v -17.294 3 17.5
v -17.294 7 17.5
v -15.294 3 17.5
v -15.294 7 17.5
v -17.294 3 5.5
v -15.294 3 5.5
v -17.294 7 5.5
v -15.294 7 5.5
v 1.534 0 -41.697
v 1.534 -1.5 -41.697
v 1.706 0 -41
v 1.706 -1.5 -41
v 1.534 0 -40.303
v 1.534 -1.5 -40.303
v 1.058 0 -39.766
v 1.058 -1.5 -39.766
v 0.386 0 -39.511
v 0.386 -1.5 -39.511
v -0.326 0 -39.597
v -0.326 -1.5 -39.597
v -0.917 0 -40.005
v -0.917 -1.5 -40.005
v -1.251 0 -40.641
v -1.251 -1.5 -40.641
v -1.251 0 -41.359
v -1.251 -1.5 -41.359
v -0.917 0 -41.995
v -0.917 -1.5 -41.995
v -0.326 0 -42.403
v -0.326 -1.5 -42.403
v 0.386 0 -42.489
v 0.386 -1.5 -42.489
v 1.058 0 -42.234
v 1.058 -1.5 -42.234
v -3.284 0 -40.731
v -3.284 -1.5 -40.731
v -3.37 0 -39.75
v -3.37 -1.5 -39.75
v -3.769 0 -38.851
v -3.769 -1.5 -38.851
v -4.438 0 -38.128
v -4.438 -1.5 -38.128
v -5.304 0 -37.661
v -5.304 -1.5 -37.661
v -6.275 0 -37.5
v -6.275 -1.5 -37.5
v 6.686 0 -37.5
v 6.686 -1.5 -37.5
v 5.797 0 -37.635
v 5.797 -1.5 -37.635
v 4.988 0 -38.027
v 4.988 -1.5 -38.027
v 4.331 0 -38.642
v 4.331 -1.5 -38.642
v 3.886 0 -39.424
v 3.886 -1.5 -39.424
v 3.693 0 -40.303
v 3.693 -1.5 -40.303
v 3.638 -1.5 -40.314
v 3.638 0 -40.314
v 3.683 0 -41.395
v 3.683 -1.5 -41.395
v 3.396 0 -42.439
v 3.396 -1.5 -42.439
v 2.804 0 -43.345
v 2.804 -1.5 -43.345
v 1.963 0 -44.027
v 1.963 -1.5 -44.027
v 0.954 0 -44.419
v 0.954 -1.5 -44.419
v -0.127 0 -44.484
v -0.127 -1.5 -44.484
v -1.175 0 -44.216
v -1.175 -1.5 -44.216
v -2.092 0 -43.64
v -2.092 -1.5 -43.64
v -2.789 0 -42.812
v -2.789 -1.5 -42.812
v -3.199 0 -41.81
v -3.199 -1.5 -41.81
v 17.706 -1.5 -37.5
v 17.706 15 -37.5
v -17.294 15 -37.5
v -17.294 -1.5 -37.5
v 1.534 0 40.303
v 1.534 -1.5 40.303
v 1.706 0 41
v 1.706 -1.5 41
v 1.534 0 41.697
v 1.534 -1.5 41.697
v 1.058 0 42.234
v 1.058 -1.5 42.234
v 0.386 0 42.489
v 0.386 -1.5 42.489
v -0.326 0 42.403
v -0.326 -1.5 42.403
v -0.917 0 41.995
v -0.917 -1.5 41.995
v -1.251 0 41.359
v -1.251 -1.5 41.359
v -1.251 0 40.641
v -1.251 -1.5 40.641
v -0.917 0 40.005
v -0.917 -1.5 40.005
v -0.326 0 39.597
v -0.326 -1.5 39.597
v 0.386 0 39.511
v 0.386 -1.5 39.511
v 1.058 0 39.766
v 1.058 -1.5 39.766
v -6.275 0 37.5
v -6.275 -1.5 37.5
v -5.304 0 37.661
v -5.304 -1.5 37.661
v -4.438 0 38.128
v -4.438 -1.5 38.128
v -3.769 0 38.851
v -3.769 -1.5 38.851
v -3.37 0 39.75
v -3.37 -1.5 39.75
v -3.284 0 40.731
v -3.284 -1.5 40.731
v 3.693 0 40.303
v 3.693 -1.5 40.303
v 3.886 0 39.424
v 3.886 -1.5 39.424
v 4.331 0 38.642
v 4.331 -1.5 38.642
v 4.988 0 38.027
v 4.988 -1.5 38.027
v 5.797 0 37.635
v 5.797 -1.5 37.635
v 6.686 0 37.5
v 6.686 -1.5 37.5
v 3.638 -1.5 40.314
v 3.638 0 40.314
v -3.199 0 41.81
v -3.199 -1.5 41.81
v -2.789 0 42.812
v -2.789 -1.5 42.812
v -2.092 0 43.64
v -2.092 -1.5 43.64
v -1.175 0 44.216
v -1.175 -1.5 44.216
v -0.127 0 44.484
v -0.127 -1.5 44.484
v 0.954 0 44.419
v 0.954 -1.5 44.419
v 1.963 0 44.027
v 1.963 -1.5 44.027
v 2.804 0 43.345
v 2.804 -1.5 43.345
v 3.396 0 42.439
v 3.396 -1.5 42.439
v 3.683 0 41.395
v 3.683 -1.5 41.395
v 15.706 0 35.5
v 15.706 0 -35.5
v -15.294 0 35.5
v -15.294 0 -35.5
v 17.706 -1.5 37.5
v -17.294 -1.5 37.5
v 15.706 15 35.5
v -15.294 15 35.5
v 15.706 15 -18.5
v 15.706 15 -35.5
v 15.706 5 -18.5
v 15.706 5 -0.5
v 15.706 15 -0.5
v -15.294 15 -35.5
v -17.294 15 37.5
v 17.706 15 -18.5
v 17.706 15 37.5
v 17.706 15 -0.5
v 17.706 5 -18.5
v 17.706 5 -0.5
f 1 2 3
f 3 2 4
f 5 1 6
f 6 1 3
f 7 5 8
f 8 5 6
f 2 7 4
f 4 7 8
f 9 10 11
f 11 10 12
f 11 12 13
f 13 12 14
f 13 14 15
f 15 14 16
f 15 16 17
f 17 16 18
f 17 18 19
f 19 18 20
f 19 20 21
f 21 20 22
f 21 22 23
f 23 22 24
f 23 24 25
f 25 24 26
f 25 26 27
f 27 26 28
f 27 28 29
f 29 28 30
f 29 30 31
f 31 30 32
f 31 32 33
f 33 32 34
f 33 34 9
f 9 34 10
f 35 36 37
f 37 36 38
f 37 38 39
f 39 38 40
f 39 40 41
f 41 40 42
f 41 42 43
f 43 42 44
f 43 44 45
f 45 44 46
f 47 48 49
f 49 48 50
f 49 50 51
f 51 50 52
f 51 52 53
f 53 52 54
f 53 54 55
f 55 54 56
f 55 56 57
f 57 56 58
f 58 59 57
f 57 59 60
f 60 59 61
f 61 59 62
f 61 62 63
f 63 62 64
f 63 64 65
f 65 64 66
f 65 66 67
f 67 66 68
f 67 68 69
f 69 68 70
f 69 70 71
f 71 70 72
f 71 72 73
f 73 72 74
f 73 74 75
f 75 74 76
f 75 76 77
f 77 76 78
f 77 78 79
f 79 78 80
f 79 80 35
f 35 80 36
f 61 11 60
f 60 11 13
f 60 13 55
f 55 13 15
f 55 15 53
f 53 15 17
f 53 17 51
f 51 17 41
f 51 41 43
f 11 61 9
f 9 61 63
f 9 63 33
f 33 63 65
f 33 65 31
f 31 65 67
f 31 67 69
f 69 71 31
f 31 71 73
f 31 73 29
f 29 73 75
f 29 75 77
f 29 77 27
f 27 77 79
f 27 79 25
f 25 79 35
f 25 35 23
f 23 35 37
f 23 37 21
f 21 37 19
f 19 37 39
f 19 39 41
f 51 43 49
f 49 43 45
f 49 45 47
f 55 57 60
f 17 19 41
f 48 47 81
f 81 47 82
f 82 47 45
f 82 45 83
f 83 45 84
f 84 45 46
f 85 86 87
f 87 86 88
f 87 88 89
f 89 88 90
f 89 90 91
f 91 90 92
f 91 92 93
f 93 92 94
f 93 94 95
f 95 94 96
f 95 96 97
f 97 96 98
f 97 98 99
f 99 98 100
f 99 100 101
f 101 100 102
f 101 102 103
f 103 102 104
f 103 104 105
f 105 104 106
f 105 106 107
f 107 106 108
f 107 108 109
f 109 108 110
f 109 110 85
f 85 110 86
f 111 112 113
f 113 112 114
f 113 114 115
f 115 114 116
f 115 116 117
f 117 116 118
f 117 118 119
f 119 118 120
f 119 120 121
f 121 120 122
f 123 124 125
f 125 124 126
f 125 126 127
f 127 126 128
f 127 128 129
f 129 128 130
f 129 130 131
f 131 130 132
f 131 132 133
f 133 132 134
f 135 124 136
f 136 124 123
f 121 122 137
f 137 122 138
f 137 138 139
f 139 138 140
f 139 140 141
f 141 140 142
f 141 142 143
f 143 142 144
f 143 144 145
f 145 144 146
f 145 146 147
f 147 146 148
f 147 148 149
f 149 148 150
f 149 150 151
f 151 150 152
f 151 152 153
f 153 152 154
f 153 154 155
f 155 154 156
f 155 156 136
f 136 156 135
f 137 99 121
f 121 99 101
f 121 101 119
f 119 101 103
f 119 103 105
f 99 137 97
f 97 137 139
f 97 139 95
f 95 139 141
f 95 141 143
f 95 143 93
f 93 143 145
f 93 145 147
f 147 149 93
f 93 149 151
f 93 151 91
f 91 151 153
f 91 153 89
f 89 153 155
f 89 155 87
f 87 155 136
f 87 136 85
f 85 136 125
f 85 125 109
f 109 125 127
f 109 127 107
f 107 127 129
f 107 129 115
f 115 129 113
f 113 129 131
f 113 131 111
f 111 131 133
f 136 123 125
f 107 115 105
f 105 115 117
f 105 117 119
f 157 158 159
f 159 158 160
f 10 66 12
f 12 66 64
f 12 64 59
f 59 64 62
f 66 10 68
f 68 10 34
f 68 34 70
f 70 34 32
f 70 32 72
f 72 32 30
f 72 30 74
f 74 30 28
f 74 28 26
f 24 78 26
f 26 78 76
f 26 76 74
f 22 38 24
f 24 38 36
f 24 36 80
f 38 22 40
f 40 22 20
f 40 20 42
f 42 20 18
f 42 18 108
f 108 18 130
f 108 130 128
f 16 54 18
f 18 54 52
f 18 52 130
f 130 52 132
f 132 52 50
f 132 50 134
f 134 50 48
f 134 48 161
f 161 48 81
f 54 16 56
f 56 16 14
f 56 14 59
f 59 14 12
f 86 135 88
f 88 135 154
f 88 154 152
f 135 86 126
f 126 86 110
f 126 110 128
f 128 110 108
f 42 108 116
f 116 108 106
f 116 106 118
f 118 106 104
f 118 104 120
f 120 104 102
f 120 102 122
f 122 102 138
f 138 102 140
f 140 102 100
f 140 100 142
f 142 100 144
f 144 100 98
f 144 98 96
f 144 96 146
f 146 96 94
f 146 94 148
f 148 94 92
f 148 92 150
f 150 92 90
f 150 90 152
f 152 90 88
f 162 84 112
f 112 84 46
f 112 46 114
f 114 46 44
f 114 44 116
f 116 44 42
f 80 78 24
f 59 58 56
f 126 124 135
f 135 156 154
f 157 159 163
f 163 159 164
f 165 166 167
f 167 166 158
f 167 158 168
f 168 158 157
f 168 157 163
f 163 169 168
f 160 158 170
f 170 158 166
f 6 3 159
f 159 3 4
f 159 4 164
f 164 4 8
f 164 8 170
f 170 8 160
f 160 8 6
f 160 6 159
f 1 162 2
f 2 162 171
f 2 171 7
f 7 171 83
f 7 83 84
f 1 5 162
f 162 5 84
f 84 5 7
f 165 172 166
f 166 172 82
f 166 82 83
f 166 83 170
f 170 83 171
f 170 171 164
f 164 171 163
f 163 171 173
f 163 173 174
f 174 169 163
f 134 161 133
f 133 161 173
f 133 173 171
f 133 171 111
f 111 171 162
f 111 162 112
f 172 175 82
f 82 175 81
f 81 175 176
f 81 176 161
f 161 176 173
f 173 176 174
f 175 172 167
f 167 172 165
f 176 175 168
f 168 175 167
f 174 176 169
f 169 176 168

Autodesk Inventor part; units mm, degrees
ref_plane "YZ Plane" through (0, 0, 0) normal (1, 0, 0) x (0, 1, 0)
ref_plane "XZ Plane" through (0, 0, 0) normal (0, 1, 0) x (-1, 0, 0)
ref_plane "XY Plane" through (0, 0, 0) normal (0, 0, 1) x (1, 0, 0)
sketch "Boceto1" plane through (0, 0, 0) normal (0, 1, 0) x (-1, 0, 0)
  line L0 (-15.2057, -35) -> (14.7943, -35)
  line L1 (14.7943, -35) -> (14.7943, 35)
  line L2 (14.7943, 35) -> (-15.2057, 35)
  line L3 (-15.2057, 35) -> (-15.2057, -35)
  line L4 (-15.2057, -35) -> (14.7943, 35) construction
  line L5 (14.7943, -35) -> (-15.2057, 35) construction
  line L6 (15.2943, 35.5) -> (15.2943, -35.5)
  line L7 (15.2943, -35.5) -> (-15.7057, -35.5)
  line L8 (-15.7057, -35.5) -> (-15.7057, 35.5)
  line L9 (-15.7057, 35.5) -> (15.2943, 35.5)
  line L10 (17.2943, -37.5) -> (17.2943, 37.5)
  line L11 (17.2943, 37.5) -> (-17.7057, 37.5)
  line L12 (-17.7057, 37.5) -> (-17.7057, -37.5)
  line L13 (-17.7057, -37.5) -> (17.2943, -37.5)
  point P0 (0, 0)
  point P1 (-0.2057, 0)
  dimension "d0" = 30
  dimension "d1" = 70
  dimension "d2" = 0.5
  dimension "d3" = 2
extrude "Extrusión1" add sketch "Boceto1" along normal blind 15 contours L13 L12 L11 L10
sketch "Boceto2" plane through (0, 0, 0) normal (0, -1, 0) x (1, 0, 0)
  line L0 (-17.2943, 37.5) -> (17.7057, 37.5) projected
  line L1 (-17.2943, -37.5) -> (-17.2943, 37.5) projected
  line L2 (17.7057, -37.5) -> (-17.2943, -37.5) projected
  line L3 (17.7057, 37.5) -> (17.7057, -37.5) projected
  line L4 (-15.2943, 35.5) -> (-15.2943, -35.5) projected
  line L5 (15.7057, 35.5) -> (-15.2943, 35.5) projected
  line L6 (15.7057, -35.5) -> (15.7057, 35.5) projected
  line L7 (-15.2943, -35.5) -> (15.7057, -35.5) projected
  point P0 (0, 0)
extrude "Extrusión2" add sketch "Boceto2" along normal blind 1.5 contours L0 L3 L2 L1 | L5 L6 L7 L4
sketch "Boceto3" plane through (0, -1.5, 0) normal (0, -1, 0) x (1, 0, 0)
  line L0 (-17.2943, -37.5) -> (17.7057, -37.5) projected
  line L1 (17.7057, -37.5) -> (17.7057, 37.5) projected
  line L2 (17.7057, 37.5) -> (-17.2943, 37.5) projected
  line L3 (-17.2943, 37.5) -> (-17.2943, -37.5) projected
  line L4 (-17.2943, 37.5) -> (17.7057, 37.5)
  line L5 (17.7057, 37.5) -> (17.7057, 44.5)
  line L6 (17.7057, 44.5) -> (-17.2943, 44.5)
  line L7 (-17.2943, 44.5) -> (-17.2943, 37.5)
  circle A0 centre (0.2057, 41) radius 1.5
  arc A1 (3.6377, 40.3136) -> (-3.2839, 40.7308) centre (0.2057, 41) ccw
  arc A2 (-3.5482, 41.7508) -> (-3.2839, 40.7308) centre (-6.2751, 40.5) ccw
  arc A3 (3.6953, 40.7308) -> (6.6864, 37.5) centre (6.6864, 40.5) ccw
  line L8 (3.6377, 40.3136) -> (17.7057, 37.5)
  line L9 (-17.2943, 44.5) -> (-3.2263, 41.6864)
  line L10 (-1.2652, 41.2942) -> (1.6766, 40.7058)
  point P0 (0, 0)
  point P1 (3.6929, 40.3026)
  point P2 (-6.2751, 37.5)
  dimension "d8" = 7
  dimension "d9" = 35
  dimension "d10" = 3
  dimension "d11" = 6
  dimension "d12" = 6
  dimension "d13" = 7
extrude "Extrusión3" add sketch "Boceto3" against normal blind 1.5 contours A2 A1 L8 A3 L2
mirror "Simetría1" about plane through (0, 0, 0) normal (0, 0, 1) of "Extrusión3"
sketch "Boceto4" plane through (-15.2943, 15, 35.5) normal (1, 0, 0) x (0, 0, -1)
  line L0 (0, -15) -> (71, -15) projected
  line L1 (71, -15) -> (71, 0) projected
  line L2 (0, 0) -> (71, 0) projected
  line L3 (0, -15) -> (0, 0) projected
  line L4 (0, -15) -> (30, -15)
  line L5 (30, -15) -> (30, -12)
  line L6 (30, -12) -> (18, -12)
  line L7 (18, -12) -> (30, -12)
  line L8 (30, -12) -> (30, -8)
  line L9 (30, -8) -> (18, -8)
  line L10 (18, -8) -> (18, -12)
  point P0 (35.5, -15)
  dimension "d16" = 30
  dimension "d17" = 3
  dimension "d18" = 12
extrude "Extrusión4" cut sketch "Boceto4" against normal up to surface (2 mm away) contours L6 L10 L9 L8
sketch "Boceto5" plane through (15.7057, 15, -35.5) normal (-1, 0, 0) x (0, 0, 1)
  line L0 (71, -15) -> (71, 0) projected
  line L1 (71, 0) -> (17, 0)
  line L2 (0, 0) -> (71, 0) projected
  line L3 (71, -15) -> (17, -15)
  line L4 (0, -15) -> (71, -15) projected
  line L5 (17, -15) -> (17, -10)
  line L6 (17, -10) -> (17, 0)
  line L7 (17, -10) -> (35, -10)
  line L8 (35, -10) -> (35, 0)
  line L9 (35, 0) -> (17, 0)
  line L10 (17, 0) -> (17, -10)
  point P0 (35.5, -15)
  point P1 (17, 0)
  dimension "d21" = 54
  dimension "d22" = 54
  dimension "d23" = 5
  dimension "d24" = 10
  dimension "d25" = 18
  dimension "d26" = 10
extrude "Extrusión5" cut sketch "Boceto5" against normal blind 10 contours L8 L7 L6 L1
properties part number "Caja"
